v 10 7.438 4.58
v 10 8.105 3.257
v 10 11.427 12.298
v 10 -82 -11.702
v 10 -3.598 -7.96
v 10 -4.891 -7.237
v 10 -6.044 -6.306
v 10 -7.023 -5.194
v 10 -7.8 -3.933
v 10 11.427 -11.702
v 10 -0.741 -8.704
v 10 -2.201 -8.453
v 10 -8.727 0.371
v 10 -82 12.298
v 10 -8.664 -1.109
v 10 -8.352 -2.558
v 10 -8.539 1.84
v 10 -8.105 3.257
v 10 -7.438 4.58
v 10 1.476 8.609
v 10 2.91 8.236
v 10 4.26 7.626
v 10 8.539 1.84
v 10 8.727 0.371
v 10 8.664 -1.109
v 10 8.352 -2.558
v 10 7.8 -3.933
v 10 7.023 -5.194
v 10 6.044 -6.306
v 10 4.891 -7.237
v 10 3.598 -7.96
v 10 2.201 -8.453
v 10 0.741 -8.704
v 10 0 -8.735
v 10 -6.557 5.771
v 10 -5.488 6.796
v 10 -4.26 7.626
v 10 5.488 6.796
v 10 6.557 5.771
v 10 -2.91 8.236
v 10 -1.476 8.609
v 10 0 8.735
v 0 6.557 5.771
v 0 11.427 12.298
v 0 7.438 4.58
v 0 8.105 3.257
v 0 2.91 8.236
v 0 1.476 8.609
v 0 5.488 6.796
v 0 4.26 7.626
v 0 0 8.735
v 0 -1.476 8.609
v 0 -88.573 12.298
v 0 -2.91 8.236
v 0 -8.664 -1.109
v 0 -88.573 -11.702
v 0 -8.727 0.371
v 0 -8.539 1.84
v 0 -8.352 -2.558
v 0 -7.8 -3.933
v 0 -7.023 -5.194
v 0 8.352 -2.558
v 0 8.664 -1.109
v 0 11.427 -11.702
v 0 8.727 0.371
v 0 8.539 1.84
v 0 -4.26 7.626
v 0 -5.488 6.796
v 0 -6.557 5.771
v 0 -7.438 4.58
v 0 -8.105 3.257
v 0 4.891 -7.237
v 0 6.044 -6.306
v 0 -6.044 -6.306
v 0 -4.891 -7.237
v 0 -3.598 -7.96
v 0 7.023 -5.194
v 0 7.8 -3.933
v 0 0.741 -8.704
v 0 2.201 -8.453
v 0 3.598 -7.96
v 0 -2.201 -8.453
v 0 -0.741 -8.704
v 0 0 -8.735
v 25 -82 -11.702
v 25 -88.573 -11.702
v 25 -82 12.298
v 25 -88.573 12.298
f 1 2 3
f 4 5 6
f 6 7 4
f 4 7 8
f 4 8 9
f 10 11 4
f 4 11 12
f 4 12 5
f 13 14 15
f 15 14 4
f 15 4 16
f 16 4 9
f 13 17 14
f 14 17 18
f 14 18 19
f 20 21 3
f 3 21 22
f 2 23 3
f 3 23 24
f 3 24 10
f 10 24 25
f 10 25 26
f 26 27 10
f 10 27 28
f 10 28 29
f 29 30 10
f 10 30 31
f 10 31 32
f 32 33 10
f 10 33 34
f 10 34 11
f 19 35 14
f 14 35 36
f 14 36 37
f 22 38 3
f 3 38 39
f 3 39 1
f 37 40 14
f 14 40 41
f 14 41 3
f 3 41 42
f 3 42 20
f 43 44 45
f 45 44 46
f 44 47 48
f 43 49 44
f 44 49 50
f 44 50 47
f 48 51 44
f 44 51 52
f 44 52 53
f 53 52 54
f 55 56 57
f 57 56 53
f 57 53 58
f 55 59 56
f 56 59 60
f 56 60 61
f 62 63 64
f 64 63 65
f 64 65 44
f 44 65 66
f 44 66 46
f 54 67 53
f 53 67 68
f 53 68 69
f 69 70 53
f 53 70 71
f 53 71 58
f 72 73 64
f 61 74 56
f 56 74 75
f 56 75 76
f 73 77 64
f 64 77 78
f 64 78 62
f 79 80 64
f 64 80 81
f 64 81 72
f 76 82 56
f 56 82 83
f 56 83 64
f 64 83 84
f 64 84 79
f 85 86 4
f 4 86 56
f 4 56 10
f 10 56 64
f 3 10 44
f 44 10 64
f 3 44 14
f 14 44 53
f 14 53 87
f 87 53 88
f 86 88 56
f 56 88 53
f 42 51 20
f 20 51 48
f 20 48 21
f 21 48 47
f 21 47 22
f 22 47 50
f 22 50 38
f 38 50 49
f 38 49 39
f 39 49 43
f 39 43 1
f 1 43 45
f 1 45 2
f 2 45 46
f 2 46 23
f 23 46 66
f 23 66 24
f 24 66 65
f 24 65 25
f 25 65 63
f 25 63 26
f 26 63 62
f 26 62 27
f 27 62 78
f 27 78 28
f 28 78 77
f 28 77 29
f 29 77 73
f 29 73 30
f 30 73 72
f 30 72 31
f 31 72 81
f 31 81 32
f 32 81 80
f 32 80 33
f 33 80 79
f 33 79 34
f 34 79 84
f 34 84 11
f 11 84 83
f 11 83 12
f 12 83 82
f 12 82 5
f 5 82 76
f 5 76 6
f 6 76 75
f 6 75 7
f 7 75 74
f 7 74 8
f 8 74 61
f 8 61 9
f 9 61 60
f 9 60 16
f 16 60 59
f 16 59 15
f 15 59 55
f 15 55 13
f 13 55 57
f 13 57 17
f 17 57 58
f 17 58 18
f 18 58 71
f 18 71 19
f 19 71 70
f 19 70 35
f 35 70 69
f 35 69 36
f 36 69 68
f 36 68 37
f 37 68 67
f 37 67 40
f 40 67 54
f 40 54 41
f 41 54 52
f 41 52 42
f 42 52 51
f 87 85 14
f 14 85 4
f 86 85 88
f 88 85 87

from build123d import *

# Parameters (mm, degrees)
SKETCH1_W           = 24
SKETCH1_H           = 100
SKETCH1_R           = 8.735
BOSS_EXTRUDE1_DEPTH = 10
SKETCH2_W           = 24
SKETCH2_H           = 6.573473922
BOSS_EXTRUDE2_DEPTH = 15


with BuildPart() as part:
    # Sketch1 → Boss-Extrude1 (new body)
    with BuildSketch(Plane(origin=(0, 0, 0), x_dir=(0, 0, -1), z_dir=(1, 0, 0))):
        with Locations((-0.298142376, -38.573473922)):
            Rectangle(SKETCH1_W, SKETCH1_H)
        Circle(SKETCH1_R, mode=Mode.SUBTRACT)
    extrude(amount=BOSS_EXTRUDE1_DEPTH)

    # Sketch2 → Boss-Extrude2 (add)
    with BuildSketch(Plane(origin=(10, 0, 0), x_dir=(0, 0, -1), z_dir=(1, 0, 0))):
        with Locations((-0.298142376, -85.286736961)):
            Rectangle(SKETCH2_W, SKETCH2_H)
    extrude(amount=BOSS_EXTRUDE2_DEPTH)


solid = part.part
